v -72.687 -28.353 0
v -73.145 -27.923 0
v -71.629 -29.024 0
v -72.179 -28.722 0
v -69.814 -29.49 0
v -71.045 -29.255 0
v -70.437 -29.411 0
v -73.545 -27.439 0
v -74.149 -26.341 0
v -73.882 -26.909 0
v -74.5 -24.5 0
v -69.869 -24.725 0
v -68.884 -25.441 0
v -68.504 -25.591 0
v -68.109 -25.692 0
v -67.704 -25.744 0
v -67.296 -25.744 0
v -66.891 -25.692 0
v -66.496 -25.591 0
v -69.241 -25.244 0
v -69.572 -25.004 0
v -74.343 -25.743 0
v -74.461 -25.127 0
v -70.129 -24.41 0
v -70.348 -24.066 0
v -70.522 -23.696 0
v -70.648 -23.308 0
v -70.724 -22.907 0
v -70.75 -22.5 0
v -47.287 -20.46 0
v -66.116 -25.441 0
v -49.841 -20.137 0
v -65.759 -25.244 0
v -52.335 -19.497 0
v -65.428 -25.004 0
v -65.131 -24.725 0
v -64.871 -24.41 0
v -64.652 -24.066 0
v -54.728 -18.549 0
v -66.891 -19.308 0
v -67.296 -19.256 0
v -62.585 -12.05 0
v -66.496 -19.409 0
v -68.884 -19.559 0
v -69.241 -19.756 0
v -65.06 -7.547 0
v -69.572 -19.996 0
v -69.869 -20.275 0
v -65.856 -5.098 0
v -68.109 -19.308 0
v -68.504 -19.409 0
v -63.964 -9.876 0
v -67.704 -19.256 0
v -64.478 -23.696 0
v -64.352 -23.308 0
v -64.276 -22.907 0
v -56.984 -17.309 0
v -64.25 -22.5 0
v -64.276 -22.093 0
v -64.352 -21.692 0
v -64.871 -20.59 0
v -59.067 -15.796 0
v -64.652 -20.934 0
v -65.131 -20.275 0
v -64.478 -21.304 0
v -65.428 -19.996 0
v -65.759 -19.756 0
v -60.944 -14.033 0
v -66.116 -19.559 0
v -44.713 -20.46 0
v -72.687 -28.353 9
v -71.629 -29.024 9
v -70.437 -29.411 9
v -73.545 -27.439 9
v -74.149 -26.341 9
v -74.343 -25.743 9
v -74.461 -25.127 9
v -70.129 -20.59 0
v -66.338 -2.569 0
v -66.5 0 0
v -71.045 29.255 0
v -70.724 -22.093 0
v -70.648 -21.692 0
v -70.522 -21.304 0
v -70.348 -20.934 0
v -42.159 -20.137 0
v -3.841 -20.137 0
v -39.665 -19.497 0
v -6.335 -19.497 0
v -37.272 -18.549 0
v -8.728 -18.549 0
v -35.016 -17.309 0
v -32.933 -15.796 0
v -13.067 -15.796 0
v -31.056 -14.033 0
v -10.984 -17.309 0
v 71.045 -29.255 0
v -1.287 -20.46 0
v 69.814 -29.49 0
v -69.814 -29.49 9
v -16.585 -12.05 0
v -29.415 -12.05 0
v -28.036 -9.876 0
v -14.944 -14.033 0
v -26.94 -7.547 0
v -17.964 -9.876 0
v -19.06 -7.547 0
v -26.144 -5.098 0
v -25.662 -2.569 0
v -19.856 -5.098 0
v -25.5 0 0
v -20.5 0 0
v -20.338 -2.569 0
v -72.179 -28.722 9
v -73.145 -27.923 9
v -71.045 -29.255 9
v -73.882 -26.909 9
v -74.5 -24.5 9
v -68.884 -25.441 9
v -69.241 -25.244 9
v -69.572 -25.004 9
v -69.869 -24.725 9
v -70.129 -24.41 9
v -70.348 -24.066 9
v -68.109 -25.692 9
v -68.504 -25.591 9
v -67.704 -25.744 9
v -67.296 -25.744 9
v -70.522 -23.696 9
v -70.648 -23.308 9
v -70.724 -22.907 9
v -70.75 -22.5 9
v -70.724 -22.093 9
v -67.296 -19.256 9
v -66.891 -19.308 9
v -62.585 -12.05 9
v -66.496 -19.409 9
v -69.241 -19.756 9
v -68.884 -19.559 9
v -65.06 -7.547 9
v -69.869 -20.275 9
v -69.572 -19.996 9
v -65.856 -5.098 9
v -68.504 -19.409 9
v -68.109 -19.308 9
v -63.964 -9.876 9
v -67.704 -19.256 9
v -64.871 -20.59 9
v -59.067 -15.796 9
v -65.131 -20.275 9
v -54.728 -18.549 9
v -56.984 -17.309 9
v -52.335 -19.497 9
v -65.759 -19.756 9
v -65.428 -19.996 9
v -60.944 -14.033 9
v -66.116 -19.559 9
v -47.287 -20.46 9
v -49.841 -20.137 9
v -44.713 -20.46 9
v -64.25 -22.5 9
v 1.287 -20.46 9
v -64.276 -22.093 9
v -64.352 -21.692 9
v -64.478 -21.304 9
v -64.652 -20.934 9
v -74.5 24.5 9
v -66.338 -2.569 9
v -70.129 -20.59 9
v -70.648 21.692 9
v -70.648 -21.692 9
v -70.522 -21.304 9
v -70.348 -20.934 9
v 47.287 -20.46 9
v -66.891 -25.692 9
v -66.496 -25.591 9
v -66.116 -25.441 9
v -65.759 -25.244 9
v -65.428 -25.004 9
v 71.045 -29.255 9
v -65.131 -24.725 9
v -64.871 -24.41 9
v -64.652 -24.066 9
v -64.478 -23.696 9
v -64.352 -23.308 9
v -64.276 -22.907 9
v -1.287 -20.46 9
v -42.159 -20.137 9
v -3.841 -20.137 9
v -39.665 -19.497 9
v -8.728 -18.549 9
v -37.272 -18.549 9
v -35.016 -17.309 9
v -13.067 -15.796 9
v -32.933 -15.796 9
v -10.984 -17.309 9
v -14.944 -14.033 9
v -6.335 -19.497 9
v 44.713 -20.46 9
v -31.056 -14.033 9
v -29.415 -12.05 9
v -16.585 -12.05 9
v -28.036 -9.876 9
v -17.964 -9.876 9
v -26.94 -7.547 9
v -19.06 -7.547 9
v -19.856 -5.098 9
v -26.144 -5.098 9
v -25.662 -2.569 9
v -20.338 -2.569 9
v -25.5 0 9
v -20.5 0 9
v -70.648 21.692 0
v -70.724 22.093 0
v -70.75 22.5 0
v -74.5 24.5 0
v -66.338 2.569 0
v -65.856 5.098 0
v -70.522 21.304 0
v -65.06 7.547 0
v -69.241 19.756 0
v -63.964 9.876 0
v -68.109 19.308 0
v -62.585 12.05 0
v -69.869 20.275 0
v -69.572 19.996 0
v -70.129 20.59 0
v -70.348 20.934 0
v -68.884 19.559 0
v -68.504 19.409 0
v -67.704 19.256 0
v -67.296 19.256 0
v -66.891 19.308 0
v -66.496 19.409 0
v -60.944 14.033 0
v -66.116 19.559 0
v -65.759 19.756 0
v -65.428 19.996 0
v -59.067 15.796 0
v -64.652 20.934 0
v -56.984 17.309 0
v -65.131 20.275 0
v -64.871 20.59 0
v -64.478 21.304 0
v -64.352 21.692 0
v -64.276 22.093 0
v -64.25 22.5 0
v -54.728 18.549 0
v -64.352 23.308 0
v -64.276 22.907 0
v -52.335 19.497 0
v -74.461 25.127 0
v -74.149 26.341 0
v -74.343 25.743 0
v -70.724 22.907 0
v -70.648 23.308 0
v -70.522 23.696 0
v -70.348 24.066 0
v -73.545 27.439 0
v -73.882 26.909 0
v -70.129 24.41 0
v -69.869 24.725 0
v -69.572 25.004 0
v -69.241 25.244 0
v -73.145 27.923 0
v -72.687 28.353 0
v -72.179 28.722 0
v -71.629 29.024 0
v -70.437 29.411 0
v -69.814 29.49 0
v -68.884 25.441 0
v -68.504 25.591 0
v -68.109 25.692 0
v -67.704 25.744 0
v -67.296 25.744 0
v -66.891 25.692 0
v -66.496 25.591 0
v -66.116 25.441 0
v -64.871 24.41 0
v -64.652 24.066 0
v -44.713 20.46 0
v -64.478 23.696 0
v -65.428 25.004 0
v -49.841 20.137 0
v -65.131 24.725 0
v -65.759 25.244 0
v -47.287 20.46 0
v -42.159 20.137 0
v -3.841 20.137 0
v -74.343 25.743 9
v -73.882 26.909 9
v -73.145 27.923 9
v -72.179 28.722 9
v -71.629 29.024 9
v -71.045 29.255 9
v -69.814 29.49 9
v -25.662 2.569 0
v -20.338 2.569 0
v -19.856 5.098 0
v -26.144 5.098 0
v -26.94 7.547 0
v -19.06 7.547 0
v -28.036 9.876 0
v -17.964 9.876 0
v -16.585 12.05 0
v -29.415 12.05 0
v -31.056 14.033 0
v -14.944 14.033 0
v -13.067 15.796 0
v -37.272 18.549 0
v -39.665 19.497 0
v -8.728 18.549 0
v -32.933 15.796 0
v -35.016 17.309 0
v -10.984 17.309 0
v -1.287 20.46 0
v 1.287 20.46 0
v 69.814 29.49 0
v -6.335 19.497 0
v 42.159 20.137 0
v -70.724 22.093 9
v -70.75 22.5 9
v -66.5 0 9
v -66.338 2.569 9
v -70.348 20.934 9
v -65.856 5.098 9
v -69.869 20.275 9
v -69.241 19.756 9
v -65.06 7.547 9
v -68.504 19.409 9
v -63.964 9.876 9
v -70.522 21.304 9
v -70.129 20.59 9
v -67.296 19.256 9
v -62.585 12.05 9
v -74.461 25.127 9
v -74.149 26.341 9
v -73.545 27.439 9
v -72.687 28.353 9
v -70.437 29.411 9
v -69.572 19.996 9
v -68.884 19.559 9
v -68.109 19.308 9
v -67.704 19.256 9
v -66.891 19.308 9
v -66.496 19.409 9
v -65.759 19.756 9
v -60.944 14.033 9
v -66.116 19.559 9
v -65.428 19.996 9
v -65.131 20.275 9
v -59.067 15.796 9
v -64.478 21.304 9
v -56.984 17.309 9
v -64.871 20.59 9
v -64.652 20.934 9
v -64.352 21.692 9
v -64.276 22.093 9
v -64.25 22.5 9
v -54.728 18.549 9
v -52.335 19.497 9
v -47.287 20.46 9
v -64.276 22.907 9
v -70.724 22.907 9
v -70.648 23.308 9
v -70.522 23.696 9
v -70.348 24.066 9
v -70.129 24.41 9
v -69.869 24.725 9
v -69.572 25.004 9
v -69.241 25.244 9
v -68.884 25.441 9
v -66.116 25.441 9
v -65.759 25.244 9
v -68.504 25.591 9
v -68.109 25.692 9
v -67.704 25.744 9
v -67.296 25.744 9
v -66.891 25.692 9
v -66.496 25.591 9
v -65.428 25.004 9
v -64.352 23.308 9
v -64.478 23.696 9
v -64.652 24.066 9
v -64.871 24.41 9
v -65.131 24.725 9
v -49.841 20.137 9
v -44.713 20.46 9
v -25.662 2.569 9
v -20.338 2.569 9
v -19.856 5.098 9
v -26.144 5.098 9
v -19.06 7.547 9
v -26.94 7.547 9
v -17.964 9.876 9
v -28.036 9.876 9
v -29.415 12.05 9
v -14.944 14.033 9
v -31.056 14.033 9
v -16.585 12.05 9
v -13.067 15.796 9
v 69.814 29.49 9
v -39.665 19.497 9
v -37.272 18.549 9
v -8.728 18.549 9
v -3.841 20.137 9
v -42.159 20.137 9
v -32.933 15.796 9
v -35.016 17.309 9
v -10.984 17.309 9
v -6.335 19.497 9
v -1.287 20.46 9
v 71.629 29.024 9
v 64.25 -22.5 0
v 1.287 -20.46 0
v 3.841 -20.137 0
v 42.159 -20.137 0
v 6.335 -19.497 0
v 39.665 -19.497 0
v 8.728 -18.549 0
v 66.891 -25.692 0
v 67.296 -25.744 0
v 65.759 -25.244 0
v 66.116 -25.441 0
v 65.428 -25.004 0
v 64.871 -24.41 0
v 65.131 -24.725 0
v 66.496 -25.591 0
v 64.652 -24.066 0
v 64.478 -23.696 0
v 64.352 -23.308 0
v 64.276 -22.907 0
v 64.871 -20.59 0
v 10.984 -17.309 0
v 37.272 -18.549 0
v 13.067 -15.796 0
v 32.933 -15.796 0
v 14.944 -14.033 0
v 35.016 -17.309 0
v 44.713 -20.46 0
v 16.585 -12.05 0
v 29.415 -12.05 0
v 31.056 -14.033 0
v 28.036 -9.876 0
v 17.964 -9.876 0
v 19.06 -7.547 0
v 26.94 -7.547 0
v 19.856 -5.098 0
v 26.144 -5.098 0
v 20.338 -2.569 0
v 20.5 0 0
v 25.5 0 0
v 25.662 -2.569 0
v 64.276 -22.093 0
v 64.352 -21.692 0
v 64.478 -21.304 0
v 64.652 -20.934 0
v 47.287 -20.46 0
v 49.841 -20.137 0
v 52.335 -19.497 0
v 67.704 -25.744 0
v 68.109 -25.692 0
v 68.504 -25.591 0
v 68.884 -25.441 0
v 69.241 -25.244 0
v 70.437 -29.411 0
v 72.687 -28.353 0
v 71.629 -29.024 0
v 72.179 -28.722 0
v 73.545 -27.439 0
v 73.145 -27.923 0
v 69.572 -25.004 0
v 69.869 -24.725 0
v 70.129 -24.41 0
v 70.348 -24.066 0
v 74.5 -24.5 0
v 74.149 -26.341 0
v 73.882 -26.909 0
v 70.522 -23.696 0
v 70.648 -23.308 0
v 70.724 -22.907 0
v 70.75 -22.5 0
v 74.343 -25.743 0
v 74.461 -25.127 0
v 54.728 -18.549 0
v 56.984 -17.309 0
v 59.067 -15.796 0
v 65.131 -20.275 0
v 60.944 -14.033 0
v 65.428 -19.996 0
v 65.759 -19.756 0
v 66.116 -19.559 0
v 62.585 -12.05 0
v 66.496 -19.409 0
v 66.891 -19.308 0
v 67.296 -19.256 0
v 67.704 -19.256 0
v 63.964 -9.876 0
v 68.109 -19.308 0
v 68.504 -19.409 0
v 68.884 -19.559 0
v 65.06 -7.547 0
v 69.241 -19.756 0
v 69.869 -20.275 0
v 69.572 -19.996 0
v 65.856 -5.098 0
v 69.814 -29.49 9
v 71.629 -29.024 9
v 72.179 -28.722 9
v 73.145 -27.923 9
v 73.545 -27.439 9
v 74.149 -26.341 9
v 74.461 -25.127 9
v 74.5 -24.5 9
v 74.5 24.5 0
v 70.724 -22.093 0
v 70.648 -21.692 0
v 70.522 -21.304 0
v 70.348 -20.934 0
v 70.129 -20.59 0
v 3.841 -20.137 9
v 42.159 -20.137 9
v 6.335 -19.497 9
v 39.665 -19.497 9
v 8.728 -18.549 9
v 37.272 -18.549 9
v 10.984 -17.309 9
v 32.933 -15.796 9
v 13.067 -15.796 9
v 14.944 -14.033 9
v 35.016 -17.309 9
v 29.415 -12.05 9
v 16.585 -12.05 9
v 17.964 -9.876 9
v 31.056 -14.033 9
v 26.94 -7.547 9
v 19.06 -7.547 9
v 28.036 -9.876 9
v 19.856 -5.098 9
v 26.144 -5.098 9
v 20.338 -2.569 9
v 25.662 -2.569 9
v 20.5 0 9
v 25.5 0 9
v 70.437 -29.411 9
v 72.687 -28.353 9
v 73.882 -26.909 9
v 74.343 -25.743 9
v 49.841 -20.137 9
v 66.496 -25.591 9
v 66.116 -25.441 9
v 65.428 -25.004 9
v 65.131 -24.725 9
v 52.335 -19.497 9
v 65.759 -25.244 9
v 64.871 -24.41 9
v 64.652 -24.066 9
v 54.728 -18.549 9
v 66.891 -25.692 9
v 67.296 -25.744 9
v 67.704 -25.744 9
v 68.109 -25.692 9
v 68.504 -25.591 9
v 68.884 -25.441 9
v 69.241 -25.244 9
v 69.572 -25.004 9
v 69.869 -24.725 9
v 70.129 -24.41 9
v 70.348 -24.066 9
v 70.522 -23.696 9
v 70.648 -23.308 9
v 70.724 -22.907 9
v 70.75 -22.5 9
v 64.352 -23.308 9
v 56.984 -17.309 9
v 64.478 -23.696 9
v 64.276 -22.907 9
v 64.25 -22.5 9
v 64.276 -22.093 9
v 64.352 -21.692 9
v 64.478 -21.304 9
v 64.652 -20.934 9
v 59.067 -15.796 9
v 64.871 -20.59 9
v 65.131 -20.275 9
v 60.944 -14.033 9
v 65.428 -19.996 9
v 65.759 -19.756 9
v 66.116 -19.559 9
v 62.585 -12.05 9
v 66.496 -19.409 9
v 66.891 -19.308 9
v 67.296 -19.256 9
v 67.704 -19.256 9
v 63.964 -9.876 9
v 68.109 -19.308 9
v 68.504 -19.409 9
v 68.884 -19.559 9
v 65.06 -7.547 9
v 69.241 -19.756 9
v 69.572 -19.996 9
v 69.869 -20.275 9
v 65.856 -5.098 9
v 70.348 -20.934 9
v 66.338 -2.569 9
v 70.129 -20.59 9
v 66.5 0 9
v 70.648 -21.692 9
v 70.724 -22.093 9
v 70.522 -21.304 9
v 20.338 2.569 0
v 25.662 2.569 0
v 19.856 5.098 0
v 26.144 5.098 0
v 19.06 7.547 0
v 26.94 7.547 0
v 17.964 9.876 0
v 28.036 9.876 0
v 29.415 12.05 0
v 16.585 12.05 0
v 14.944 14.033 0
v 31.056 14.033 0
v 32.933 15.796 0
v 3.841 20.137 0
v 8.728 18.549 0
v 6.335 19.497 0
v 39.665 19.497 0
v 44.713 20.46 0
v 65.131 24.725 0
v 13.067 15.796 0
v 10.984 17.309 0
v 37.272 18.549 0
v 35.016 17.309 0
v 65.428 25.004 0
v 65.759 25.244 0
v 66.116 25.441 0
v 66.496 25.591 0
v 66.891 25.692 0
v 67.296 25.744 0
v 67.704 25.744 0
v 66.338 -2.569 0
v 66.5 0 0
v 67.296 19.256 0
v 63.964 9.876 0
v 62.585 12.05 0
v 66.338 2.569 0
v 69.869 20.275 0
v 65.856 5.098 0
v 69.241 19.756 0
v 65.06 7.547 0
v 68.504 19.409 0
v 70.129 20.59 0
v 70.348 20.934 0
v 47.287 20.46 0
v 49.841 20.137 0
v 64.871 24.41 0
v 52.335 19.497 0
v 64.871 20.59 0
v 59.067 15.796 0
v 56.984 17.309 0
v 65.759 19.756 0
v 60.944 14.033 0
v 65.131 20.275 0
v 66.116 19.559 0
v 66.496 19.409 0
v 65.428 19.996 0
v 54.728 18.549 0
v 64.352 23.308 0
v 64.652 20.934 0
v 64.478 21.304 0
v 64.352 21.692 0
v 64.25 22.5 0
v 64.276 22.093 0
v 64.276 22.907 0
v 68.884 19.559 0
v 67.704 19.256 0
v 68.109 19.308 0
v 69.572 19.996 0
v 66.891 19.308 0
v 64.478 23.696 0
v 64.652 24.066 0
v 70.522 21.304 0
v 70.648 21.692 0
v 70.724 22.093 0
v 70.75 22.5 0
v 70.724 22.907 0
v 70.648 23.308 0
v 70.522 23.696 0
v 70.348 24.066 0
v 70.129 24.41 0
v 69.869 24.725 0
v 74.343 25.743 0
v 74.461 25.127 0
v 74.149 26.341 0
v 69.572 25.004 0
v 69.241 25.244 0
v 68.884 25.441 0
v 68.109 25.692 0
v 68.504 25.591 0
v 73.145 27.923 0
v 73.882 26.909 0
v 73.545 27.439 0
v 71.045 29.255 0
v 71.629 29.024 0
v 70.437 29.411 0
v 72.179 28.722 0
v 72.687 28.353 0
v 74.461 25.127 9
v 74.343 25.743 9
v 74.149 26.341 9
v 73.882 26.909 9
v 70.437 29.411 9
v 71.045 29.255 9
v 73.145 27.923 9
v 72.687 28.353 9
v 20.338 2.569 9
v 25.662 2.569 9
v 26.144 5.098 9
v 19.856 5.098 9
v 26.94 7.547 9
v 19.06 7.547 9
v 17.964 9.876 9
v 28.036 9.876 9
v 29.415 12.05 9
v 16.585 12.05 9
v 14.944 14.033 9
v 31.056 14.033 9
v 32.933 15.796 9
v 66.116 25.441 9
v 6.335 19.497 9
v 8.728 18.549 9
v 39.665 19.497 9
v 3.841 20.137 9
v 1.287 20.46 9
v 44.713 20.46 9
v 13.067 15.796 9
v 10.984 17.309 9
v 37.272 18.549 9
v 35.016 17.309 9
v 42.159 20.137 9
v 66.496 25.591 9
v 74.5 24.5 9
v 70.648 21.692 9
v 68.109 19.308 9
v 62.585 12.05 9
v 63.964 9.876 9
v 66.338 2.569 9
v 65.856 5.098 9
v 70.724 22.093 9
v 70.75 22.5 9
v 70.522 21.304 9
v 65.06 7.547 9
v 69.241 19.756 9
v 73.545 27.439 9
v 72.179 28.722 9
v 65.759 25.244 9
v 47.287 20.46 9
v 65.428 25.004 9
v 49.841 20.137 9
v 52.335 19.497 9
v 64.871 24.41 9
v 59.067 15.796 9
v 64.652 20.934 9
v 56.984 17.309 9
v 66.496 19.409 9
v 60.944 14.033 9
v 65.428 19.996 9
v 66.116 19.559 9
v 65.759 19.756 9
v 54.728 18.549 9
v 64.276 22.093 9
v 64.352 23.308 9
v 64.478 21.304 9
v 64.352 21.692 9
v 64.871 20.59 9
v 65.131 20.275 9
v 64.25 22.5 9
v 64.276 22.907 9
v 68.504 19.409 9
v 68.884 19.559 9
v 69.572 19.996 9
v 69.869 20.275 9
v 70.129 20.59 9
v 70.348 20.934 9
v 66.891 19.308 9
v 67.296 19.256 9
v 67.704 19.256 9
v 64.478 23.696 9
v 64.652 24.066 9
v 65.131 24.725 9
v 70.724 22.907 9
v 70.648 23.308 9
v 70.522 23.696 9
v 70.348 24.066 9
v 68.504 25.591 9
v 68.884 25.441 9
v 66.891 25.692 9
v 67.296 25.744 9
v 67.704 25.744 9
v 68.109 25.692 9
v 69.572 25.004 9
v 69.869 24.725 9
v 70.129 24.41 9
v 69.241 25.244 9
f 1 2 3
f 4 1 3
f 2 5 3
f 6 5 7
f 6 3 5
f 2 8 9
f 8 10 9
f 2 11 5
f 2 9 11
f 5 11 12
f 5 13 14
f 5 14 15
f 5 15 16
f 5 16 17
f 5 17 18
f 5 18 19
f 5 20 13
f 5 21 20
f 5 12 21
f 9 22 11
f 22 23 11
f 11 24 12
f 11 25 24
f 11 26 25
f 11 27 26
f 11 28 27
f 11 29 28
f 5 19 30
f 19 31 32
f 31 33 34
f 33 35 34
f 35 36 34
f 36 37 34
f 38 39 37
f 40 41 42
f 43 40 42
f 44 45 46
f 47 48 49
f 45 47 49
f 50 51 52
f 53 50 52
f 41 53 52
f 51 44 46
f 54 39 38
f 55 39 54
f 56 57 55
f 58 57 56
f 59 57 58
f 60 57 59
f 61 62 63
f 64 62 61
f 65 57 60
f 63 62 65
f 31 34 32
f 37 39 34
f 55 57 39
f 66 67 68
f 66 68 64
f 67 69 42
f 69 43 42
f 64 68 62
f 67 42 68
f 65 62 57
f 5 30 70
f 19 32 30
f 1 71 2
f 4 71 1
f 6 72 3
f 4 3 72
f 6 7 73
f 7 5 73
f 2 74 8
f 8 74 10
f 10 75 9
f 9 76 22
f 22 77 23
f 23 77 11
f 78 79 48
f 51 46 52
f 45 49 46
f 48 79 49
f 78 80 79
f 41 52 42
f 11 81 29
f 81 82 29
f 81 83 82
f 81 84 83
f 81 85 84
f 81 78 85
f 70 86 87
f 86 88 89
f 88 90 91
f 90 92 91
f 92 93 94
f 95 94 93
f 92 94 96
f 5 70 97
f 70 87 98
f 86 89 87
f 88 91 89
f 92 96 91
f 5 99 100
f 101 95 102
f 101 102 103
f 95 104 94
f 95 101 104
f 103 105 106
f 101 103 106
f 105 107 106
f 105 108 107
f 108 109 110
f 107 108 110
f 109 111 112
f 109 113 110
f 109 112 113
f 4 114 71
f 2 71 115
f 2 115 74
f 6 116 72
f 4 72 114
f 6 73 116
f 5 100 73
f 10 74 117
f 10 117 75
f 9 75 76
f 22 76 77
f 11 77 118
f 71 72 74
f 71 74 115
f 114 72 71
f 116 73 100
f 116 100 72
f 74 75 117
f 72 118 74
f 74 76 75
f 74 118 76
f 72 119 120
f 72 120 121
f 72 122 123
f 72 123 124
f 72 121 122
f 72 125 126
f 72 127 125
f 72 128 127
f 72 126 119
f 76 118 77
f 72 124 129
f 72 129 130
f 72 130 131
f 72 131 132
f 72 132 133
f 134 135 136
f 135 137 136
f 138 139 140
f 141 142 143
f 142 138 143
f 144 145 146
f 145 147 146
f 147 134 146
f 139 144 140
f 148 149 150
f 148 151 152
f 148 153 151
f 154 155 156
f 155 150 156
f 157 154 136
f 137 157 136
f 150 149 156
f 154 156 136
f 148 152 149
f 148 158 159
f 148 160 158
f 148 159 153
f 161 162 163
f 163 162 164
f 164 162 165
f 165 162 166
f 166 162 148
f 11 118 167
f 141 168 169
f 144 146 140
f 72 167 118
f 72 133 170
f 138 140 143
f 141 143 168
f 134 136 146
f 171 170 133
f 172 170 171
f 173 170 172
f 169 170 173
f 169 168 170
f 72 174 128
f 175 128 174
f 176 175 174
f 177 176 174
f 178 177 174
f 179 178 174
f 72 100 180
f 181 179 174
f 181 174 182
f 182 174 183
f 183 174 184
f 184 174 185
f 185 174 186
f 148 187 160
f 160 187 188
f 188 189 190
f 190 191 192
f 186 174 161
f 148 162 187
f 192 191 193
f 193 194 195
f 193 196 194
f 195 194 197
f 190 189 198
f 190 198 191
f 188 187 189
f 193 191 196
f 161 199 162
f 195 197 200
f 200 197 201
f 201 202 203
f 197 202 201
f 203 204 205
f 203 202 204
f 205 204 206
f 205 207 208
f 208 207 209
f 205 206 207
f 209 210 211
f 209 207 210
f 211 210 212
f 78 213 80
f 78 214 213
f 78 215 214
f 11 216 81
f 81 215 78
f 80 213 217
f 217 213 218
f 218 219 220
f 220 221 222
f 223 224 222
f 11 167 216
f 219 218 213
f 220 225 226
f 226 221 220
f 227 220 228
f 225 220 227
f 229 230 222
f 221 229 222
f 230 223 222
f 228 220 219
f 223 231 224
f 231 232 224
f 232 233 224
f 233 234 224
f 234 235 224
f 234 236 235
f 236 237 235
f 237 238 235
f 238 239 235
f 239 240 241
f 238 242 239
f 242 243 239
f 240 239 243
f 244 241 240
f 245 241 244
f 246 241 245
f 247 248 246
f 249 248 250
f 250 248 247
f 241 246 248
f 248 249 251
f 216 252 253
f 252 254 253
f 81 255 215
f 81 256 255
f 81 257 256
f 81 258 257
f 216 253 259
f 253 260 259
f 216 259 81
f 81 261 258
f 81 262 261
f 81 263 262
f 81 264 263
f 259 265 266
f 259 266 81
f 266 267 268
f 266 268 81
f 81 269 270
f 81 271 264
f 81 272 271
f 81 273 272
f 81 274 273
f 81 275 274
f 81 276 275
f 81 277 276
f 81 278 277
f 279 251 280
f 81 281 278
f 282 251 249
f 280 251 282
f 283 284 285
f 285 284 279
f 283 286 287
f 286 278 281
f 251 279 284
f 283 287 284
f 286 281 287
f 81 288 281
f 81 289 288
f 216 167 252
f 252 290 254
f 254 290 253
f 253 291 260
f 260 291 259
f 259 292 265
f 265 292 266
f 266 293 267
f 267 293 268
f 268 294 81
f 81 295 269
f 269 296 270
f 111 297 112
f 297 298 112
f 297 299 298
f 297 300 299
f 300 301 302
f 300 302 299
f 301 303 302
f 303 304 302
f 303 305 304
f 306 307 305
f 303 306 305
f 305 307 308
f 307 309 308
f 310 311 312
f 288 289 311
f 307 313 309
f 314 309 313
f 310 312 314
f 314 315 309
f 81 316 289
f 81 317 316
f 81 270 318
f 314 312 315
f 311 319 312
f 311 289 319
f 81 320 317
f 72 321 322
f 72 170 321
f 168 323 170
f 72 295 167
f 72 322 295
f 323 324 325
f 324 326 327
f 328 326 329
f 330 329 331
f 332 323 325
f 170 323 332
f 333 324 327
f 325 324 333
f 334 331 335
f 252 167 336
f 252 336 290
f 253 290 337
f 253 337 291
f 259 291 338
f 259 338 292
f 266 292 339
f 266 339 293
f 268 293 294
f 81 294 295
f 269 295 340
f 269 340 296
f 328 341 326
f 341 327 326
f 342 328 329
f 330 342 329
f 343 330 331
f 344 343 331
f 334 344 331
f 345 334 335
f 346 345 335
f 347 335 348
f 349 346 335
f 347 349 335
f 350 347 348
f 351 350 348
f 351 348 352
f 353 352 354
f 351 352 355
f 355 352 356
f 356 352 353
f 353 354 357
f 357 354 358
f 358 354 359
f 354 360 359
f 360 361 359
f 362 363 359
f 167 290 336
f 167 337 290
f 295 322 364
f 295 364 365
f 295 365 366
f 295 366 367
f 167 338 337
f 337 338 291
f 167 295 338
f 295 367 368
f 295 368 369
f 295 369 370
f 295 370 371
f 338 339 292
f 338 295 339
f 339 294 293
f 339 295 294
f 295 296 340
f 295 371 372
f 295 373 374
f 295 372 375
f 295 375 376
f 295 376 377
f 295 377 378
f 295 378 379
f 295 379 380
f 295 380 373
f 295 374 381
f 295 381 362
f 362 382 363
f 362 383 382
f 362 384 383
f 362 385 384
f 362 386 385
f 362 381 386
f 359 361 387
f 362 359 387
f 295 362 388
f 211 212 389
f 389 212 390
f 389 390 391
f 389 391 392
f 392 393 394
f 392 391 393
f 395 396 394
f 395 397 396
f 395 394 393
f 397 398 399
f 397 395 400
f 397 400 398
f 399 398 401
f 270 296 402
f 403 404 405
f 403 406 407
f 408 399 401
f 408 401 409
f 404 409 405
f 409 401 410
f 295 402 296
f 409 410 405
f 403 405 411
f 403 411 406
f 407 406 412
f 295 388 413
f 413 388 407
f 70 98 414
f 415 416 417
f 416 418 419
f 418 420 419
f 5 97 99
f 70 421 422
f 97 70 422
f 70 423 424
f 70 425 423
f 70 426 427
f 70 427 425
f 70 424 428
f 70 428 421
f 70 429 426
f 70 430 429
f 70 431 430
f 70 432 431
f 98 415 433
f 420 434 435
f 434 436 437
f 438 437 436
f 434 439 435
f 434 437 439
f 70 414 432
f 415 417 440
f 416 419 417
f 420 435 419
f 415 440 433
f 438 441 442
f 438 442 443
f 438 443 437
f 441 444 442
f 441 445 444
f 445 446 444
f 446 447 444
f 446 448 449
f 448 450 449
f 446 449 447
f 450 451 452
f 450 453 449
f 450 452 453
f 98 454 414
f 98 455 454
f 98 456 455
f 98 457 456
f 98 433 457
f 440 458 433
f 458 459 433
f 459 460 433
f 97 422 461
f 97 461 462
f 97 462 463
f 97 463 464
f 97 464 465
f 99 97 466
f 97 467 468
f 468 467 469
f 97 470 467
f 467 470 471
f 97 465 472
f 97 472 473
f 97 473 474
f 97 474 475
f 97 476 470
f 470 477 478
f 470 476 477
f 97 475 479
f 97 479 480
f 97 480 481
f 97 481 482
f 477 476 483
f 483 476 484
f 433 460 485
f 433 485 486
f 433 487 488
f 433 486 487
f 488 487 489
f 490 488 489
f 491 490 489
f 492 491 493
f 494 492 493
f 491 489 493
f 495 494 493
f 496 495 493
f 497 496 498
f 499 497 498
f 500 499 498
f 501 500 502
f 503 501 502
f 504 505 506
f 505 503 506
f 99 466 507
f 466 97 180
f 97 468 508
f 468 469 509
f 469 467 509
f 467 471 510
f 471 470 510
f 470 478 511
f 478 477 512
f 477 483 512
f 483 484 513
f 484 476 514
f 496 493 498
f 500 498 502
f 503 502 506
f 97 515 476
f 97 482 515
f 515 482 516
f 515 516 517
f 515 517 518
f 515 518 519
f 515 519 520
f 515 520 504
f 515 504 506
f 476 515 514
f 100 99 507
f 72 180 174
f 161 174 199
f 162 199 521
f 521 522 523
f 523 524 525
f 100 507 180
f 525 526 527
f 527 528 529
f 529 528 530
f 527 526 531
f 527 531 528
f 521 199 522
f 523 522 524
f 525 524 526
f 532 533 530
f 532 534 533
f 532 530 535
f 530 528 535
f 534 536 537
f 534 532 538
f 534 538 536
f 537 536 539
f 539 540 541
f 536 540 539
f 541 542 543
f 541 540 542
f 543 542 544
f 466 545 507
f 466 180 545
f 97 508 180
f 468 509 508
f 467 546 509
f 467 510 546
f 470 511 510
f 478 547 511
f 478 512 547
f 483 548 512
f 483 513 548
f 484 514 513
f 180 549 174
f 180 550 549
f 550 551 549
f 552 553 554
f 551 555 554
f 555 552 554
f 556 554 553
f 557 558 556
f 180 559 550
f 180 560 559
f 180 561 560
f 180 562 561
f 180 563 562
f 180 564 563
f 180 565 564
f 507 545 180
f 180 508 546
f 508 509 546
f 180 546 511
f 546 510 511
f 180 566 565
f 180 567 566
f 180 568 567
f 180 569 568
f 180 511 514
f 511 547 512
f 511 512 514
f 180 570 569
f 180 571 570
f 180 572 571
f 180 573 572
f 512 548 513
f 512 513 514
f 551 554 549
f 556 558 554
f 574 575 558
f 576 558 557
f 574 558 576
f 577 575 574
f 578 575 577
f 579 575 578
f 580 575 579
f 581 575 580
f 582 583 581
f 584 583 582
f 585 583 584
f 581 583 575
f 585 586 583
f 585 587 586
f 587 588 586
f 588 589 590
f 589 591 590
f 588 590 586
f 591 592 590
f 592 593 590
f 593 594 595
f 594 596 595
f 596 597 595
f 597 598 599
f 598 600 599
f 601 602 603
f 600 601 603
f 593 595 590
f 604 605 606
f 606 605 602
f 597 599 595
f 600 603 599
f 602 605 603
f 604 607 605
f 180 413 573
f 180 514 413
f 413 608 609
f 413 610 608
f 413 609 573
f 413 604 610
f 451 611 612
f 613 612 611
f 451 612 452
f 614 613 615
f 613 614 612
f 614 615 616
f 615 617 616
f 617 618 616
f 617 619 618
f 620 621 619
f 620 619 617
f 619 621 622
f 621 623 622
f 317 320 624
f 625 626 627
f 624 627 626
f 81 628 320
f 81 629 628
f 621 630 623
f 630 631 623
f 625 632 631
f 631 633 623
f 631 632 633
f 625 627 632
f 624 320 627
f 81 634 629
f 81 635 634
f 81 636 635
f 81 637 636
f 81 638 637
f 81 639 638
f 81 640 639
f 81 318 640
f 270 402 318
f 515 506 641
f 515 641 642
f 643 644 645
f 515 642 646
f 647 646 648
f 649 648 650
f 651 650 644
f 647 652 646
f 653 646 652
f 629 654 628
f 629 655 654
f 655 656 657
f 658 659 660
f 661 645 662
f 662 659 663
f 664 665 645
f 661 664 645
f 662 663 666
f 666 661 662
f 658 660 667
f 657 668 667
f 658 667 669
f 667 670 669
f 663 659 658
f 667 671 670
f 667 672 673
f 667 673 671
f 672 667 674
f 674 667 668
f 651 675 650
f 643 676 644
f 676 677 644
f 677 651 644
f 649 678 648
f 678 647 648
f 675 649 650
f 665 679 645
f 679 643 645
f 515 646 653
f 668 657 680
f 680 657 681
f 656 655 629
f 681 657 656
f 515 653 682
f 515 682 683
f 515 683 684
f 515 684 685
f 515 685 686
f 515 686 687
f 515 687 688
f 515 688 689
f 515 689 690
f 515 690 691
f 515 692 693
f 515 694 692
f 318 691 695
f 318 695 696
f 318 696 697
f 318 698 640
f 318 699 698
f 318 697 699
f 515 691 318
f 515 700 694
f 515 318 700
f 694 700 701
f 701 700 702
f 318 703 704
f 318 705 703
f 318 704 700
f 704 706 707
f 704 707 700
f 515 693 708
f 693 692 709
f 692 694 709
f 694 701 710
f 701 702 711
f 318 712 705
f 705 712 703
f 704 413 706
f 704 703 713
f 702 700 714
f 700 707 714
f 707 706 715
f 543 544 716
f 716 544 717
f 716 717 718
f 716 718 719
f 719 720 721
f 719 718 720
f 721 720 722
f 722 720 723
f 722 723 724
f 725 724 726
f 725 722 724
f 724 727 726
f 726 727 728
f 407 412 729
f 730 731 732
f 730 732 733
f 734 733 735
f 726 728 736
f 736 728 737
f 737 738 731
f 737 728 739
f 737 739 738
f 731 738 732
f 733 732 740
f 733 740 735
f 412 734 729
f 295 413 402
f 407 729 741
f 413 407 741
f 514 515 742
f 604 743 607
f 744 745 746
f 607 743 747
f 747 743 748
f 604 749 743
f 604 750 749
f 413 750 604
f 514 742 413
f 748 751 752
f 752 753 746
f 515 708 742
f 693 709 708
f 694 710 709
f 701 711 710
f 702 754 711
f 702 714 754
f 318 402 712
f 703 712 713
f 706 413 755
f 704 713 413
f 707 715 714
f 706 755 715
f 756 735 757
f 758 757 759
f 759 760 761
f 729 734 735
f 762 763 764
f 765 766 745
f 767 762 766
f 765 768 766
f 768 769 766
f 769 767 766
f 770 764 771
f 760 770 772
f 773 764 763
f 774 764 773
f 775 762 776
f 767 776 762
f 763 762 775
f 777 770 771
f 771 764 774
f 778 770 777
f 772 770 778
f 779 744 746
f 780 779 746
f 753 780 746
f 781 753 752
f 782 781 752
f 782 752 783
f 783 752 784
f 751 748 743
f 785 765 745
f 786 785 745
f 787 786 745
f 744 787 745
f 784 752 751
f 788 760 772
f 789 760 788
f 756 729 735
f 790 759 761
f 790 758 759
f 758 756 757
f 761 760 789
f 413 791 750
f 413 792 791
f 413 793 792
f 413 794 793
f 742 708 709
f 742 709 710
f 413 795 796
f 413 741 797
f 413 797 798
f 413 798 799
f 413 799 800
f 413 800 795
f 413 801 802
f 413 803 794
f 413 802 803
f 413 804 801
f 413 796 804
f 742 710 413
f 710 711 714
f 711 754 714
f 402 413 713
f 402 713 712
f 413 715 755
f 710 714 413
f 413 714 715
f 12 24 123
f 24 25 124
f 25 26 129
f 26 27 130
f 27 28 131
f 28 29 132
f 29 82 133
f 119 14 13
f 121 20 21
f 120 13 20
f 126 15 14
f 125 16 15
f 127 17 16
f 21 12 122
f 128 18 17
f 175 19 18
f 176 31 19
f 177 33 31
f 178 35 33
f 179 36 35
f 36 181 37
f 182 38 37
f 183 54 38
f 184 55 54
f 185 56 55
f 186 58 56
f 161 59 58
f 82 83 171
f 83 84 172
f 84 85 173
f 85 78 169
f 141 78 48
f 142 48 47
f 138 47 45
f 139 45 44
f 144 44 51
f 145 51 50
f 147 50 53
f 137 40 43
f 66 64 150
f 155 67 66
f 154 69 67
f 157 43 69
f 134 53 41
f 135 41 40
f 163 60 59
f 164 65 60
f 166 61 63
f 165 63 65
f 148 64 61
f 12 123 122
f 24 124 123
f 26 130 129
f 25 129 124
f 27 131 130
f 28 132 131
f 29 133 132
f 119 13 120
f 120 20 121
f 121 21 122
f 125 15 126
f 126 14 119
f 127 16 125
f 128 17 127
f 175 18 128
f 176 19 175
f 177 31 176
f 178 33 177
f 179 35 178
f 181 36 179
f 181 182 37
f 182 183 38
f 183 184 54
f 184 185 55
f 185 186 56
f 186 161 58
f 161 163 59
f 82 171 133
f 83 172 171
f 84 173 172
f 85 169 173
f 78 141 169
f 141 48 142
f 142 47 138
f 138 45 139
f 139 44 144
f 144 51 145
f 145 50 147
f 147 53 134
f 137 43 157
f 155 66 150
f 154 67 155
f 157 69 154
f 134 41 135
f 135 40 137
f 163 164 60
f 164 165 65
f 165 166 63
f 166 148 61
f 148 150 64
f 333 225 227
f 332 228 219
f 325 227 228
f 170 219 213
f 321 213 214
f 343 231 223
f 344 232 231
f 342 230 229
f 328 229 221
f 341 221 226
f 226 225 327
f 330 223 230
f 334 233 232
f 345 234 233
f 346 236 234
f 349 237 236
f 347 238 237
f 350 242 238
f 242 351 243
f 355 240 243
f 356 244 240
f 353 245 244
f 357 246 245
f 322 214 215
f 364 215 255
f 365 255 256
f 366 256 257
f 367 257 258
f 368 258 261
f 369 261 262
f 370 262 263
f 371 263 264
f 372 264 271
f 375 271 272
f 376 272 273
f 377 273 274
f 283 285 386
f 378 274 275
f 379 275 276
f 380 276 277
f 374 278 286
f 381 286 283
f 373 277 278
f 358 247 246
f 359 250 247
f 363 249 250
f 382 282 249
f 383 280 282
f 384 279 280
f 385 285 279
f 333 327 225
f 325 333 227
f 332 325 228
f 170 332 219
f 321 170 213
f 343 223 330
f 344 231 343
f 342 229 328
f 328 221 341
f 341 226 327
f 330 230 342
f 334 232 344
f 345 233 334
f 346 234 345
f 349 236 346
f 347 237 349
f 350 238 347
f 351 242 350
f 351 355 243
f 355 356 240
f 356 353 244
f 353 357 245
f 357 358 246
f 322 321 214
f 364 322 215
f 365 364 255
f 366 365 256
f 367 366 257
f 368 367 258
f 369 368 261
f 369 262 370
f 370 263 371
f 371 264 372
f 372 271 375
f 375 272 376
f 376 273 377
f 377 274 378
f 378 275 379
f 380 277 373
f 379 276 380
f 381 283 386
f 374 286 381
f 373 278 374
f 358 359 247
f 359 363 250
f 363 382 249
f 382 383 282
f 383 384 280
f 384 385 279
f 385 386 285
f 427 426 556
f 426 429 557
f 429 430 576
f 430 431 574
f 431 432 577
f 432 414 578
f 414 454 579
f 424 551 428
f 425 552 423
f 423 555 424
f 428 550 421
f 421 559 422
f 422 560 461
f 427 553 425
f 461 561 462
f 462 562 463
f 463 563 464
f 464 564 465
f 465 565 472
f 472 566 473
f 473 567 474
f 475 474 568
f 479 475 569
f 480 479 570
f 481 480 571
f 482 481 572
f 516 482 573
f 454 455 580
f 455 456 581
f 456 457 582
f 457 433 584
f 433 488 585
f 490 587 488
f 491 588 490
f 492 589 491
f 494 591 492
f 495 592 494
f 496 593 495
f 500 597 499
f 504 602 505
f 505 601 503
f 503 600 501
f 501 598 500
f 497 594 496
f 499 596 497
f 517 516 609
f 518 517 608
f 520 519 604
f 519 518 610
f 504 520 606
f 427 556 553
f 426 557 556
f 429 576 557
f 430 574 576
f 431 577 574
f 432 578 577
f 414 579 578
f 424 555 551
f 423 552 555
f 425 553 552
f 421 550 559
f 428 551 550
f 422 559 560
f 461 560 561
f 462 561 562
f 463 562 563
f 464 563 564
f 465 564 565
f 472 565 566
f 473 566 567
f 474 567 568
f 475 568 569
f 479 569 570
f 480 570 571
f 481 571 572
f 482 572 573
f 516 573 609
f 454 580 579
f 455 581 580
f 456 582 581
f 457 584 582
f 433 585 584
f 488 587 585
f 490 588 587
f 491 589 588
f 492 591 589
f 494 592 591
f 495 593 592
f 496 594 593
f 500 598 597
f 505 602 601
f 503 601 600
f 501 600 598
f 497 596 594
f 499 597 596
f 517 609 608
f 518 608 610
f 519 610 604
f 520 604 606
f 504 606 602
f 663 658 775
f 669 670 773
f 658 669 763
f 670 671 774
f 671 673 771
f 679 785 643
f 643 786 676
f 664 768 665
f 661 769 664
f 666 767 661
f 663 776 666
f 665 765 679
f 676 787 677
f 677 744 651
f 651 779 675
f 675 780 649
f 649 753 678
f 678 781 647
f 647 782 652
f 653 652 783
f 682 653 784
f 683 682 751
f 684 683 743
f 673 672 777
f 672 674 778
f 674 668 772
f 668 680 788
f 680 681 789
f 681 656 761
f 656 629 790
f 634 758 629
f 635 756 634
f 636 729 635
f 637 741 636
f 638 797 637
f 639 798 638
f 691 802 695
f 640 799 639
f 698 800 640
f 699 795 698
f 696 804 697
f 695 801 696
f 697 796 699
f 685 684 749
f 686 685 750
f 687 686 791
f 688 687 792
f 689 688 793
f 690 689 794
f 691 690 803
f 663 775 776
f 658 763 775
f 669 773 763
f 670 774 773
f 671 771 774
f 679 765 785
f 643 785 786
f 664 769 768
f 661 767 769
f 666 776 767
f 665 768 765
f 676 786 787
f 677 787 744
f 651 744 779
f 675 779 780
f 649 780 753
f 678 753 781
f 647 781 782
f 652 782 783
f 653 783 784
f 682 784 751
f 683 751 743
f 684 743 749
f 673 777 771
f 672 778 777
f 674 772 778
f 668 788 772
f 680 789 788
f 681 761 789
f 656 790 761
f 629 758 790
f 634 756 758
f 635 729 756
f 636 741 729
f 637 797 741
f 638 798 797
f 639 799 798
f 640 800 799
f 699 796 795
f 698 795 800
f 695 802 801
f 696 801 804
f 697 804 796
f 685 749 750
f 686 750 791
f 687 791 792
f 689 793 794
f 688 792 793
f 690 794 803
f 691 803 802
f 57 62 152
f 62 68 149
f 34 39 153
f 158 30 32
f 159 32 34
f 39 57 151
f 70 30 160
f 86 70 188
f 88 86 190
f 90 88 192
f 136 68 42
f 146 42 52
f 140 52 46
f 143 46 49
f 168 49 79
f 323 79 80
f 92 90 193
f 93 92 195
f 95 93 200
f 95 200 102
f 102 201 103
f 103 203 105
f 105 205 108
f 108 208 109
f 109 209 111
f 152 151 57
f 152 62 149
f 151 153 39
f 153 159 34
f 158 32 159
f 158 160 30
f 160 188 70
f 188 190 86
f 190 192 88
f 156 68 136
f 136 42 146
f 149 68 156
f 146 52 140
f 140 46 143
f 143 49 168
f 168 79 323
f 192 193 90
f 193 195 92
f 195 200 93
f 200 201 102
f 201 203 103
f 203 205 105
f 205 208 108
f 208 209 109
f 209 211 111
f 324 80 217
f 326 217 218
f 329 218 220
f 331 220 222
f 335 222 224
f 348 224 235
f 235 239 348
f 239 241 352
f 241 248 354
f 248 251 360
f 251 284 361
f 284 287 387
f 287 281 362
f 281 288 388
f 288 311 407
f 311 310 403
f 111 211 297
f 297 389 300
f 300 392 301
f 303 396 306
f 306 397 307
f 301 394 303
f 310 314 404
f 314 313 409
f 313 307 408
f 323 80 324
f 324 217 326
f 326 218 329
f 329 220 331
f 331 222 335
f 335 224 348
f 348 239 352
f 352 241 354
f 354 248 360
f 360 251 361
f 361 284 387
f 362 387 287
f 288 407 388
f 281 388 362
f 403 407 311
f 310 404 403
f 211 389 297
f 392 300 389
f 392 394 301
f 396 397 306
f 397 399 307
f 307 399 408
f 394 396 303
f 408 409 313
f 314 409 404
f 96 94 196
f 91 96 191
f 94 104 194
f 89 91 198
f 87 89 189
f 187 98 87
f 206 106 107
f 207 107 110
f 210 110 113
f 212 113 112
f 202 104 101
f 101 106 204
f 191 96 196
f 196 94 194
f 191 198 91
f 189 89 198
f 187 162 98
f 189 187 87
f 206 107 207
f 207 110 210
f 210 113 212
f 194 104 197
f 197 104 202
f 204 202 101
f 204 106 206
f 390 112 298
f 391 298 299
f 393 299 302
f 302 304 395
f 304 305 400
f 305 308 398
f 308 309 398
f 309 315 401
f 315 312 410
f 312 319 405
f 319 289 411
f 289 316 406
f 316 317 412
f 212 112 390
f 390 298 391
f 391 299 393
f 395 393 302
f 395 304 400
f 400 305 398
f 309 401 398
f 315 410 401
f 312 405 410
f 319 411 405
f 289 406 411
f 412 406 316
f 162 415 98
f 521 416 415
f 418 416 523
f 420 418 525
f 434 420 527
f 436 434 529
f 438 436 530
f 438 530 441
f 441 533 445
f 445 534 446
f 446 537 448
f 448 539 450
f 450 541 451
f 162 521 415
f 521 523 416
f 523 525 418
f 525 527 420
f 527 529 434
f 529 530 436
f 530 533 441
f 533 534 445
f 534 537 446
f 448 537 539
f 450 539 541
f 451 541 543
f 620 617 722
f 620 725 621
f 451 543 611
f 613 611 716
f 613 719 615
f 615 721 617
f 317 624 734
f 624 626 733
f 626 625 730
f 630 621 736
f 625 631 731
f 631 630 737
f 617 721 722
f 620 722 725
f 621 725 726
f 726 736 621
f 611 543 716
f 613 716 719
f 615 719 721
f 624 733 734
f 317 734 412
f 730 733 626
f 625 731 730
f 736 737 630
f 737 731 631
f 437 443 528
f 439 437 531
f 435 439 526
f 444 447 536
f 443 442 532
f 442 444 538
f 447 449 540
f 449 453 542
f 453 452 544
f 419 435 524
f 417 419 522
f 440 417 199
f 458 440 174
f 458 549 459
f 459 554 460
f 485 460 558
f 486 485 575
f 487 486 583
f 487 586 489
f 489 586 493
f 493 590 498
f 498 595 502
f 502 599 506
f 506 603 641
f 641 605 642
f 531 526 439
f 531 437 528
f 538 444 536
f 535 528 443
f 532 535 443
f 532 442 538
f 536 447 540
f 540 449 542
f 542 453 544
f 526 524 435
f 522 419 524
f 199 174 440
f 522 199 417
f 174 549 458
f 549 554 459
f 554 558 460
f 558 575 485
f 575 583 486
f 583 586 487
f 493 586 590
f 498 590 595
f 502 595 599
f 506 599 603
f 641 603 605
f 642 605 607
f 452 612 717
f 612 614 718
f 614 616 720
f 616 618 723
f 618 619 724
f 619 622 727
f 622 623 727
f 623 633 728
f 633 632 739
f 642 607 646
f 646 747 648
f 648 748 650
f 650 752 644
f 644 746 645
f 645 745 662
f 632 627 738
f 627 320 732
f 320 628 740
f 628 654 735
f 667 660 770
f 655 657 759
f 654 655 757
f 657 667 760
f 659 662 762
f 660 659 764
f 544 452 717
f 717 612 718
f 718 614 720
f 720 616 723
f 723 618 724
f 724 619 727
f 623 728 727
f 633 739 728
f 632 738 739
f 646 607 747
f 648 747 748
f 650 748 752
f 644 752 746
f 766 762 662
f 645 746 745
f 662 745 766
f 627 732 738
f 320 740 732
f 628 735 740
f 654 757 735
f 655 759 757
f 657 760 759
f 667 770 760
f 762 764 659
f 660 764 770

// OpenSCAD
$fn = 50;

difference() {
	union() {
		hull() {
			translate(v = [-69.5, 24.5, 0]) {
				cylinder(h = 9, r = 5);
			}
			translate(v = [69.5, 24.5, 0]) {
				cylinder(h = 9, r = 5);
			}
			translate(v = [-69.5, -24.5, 0]) {
				cylinder(h = 9, r = 5);
			}
			translate(v = [69.5, -24.5, 0]) {
				cylinder(h = 9, r = 5);
			}
		}
	}
	union() {
		translate(v = [-67.5, -22.5, -100.0]) {
			cylinder(h = 200, r = 3.25);
		}
		translate(v = [-67.5, 22.5, -100.0]) {
			cylinder(h = 200, r = 3.25);
		}
		translate(v = [67.5, -22.5, -100.0]) {
			cylinder(h = 200, r = 3.25);
		}
		translate(v = [67.5, 22.5, -100.0]) {
			cylinder(h = 200, r = 3.25);
		}
		translate(v = [-67.5, -22.5, -100.0]) {
			cylinder(h = 200, r = 1.8);
		}
		translate(v = [-67.5, 22.5, -100.0]) {
			cylinder(h = 200, r = 1.8);
		}
		translate(v = [67.5, -22.5, -100.0]) {
			cylinder(h = 200, r = 1.8);
		}
		translate(v = [67.5, 22.5, -100.0]) {
			cylinder(h = 200, r = 1.8);
		}
		translate(v = [-46.0, 0, 0.0]) {
			cylinder(h = 9, r = 20.5);
		}
		cylinder(h = 9, r = 20.5);
		translate(v = [46.0, 0, 0.0]) {
			cylinder(h = 9, r = 20.5);
		}
	}
}
